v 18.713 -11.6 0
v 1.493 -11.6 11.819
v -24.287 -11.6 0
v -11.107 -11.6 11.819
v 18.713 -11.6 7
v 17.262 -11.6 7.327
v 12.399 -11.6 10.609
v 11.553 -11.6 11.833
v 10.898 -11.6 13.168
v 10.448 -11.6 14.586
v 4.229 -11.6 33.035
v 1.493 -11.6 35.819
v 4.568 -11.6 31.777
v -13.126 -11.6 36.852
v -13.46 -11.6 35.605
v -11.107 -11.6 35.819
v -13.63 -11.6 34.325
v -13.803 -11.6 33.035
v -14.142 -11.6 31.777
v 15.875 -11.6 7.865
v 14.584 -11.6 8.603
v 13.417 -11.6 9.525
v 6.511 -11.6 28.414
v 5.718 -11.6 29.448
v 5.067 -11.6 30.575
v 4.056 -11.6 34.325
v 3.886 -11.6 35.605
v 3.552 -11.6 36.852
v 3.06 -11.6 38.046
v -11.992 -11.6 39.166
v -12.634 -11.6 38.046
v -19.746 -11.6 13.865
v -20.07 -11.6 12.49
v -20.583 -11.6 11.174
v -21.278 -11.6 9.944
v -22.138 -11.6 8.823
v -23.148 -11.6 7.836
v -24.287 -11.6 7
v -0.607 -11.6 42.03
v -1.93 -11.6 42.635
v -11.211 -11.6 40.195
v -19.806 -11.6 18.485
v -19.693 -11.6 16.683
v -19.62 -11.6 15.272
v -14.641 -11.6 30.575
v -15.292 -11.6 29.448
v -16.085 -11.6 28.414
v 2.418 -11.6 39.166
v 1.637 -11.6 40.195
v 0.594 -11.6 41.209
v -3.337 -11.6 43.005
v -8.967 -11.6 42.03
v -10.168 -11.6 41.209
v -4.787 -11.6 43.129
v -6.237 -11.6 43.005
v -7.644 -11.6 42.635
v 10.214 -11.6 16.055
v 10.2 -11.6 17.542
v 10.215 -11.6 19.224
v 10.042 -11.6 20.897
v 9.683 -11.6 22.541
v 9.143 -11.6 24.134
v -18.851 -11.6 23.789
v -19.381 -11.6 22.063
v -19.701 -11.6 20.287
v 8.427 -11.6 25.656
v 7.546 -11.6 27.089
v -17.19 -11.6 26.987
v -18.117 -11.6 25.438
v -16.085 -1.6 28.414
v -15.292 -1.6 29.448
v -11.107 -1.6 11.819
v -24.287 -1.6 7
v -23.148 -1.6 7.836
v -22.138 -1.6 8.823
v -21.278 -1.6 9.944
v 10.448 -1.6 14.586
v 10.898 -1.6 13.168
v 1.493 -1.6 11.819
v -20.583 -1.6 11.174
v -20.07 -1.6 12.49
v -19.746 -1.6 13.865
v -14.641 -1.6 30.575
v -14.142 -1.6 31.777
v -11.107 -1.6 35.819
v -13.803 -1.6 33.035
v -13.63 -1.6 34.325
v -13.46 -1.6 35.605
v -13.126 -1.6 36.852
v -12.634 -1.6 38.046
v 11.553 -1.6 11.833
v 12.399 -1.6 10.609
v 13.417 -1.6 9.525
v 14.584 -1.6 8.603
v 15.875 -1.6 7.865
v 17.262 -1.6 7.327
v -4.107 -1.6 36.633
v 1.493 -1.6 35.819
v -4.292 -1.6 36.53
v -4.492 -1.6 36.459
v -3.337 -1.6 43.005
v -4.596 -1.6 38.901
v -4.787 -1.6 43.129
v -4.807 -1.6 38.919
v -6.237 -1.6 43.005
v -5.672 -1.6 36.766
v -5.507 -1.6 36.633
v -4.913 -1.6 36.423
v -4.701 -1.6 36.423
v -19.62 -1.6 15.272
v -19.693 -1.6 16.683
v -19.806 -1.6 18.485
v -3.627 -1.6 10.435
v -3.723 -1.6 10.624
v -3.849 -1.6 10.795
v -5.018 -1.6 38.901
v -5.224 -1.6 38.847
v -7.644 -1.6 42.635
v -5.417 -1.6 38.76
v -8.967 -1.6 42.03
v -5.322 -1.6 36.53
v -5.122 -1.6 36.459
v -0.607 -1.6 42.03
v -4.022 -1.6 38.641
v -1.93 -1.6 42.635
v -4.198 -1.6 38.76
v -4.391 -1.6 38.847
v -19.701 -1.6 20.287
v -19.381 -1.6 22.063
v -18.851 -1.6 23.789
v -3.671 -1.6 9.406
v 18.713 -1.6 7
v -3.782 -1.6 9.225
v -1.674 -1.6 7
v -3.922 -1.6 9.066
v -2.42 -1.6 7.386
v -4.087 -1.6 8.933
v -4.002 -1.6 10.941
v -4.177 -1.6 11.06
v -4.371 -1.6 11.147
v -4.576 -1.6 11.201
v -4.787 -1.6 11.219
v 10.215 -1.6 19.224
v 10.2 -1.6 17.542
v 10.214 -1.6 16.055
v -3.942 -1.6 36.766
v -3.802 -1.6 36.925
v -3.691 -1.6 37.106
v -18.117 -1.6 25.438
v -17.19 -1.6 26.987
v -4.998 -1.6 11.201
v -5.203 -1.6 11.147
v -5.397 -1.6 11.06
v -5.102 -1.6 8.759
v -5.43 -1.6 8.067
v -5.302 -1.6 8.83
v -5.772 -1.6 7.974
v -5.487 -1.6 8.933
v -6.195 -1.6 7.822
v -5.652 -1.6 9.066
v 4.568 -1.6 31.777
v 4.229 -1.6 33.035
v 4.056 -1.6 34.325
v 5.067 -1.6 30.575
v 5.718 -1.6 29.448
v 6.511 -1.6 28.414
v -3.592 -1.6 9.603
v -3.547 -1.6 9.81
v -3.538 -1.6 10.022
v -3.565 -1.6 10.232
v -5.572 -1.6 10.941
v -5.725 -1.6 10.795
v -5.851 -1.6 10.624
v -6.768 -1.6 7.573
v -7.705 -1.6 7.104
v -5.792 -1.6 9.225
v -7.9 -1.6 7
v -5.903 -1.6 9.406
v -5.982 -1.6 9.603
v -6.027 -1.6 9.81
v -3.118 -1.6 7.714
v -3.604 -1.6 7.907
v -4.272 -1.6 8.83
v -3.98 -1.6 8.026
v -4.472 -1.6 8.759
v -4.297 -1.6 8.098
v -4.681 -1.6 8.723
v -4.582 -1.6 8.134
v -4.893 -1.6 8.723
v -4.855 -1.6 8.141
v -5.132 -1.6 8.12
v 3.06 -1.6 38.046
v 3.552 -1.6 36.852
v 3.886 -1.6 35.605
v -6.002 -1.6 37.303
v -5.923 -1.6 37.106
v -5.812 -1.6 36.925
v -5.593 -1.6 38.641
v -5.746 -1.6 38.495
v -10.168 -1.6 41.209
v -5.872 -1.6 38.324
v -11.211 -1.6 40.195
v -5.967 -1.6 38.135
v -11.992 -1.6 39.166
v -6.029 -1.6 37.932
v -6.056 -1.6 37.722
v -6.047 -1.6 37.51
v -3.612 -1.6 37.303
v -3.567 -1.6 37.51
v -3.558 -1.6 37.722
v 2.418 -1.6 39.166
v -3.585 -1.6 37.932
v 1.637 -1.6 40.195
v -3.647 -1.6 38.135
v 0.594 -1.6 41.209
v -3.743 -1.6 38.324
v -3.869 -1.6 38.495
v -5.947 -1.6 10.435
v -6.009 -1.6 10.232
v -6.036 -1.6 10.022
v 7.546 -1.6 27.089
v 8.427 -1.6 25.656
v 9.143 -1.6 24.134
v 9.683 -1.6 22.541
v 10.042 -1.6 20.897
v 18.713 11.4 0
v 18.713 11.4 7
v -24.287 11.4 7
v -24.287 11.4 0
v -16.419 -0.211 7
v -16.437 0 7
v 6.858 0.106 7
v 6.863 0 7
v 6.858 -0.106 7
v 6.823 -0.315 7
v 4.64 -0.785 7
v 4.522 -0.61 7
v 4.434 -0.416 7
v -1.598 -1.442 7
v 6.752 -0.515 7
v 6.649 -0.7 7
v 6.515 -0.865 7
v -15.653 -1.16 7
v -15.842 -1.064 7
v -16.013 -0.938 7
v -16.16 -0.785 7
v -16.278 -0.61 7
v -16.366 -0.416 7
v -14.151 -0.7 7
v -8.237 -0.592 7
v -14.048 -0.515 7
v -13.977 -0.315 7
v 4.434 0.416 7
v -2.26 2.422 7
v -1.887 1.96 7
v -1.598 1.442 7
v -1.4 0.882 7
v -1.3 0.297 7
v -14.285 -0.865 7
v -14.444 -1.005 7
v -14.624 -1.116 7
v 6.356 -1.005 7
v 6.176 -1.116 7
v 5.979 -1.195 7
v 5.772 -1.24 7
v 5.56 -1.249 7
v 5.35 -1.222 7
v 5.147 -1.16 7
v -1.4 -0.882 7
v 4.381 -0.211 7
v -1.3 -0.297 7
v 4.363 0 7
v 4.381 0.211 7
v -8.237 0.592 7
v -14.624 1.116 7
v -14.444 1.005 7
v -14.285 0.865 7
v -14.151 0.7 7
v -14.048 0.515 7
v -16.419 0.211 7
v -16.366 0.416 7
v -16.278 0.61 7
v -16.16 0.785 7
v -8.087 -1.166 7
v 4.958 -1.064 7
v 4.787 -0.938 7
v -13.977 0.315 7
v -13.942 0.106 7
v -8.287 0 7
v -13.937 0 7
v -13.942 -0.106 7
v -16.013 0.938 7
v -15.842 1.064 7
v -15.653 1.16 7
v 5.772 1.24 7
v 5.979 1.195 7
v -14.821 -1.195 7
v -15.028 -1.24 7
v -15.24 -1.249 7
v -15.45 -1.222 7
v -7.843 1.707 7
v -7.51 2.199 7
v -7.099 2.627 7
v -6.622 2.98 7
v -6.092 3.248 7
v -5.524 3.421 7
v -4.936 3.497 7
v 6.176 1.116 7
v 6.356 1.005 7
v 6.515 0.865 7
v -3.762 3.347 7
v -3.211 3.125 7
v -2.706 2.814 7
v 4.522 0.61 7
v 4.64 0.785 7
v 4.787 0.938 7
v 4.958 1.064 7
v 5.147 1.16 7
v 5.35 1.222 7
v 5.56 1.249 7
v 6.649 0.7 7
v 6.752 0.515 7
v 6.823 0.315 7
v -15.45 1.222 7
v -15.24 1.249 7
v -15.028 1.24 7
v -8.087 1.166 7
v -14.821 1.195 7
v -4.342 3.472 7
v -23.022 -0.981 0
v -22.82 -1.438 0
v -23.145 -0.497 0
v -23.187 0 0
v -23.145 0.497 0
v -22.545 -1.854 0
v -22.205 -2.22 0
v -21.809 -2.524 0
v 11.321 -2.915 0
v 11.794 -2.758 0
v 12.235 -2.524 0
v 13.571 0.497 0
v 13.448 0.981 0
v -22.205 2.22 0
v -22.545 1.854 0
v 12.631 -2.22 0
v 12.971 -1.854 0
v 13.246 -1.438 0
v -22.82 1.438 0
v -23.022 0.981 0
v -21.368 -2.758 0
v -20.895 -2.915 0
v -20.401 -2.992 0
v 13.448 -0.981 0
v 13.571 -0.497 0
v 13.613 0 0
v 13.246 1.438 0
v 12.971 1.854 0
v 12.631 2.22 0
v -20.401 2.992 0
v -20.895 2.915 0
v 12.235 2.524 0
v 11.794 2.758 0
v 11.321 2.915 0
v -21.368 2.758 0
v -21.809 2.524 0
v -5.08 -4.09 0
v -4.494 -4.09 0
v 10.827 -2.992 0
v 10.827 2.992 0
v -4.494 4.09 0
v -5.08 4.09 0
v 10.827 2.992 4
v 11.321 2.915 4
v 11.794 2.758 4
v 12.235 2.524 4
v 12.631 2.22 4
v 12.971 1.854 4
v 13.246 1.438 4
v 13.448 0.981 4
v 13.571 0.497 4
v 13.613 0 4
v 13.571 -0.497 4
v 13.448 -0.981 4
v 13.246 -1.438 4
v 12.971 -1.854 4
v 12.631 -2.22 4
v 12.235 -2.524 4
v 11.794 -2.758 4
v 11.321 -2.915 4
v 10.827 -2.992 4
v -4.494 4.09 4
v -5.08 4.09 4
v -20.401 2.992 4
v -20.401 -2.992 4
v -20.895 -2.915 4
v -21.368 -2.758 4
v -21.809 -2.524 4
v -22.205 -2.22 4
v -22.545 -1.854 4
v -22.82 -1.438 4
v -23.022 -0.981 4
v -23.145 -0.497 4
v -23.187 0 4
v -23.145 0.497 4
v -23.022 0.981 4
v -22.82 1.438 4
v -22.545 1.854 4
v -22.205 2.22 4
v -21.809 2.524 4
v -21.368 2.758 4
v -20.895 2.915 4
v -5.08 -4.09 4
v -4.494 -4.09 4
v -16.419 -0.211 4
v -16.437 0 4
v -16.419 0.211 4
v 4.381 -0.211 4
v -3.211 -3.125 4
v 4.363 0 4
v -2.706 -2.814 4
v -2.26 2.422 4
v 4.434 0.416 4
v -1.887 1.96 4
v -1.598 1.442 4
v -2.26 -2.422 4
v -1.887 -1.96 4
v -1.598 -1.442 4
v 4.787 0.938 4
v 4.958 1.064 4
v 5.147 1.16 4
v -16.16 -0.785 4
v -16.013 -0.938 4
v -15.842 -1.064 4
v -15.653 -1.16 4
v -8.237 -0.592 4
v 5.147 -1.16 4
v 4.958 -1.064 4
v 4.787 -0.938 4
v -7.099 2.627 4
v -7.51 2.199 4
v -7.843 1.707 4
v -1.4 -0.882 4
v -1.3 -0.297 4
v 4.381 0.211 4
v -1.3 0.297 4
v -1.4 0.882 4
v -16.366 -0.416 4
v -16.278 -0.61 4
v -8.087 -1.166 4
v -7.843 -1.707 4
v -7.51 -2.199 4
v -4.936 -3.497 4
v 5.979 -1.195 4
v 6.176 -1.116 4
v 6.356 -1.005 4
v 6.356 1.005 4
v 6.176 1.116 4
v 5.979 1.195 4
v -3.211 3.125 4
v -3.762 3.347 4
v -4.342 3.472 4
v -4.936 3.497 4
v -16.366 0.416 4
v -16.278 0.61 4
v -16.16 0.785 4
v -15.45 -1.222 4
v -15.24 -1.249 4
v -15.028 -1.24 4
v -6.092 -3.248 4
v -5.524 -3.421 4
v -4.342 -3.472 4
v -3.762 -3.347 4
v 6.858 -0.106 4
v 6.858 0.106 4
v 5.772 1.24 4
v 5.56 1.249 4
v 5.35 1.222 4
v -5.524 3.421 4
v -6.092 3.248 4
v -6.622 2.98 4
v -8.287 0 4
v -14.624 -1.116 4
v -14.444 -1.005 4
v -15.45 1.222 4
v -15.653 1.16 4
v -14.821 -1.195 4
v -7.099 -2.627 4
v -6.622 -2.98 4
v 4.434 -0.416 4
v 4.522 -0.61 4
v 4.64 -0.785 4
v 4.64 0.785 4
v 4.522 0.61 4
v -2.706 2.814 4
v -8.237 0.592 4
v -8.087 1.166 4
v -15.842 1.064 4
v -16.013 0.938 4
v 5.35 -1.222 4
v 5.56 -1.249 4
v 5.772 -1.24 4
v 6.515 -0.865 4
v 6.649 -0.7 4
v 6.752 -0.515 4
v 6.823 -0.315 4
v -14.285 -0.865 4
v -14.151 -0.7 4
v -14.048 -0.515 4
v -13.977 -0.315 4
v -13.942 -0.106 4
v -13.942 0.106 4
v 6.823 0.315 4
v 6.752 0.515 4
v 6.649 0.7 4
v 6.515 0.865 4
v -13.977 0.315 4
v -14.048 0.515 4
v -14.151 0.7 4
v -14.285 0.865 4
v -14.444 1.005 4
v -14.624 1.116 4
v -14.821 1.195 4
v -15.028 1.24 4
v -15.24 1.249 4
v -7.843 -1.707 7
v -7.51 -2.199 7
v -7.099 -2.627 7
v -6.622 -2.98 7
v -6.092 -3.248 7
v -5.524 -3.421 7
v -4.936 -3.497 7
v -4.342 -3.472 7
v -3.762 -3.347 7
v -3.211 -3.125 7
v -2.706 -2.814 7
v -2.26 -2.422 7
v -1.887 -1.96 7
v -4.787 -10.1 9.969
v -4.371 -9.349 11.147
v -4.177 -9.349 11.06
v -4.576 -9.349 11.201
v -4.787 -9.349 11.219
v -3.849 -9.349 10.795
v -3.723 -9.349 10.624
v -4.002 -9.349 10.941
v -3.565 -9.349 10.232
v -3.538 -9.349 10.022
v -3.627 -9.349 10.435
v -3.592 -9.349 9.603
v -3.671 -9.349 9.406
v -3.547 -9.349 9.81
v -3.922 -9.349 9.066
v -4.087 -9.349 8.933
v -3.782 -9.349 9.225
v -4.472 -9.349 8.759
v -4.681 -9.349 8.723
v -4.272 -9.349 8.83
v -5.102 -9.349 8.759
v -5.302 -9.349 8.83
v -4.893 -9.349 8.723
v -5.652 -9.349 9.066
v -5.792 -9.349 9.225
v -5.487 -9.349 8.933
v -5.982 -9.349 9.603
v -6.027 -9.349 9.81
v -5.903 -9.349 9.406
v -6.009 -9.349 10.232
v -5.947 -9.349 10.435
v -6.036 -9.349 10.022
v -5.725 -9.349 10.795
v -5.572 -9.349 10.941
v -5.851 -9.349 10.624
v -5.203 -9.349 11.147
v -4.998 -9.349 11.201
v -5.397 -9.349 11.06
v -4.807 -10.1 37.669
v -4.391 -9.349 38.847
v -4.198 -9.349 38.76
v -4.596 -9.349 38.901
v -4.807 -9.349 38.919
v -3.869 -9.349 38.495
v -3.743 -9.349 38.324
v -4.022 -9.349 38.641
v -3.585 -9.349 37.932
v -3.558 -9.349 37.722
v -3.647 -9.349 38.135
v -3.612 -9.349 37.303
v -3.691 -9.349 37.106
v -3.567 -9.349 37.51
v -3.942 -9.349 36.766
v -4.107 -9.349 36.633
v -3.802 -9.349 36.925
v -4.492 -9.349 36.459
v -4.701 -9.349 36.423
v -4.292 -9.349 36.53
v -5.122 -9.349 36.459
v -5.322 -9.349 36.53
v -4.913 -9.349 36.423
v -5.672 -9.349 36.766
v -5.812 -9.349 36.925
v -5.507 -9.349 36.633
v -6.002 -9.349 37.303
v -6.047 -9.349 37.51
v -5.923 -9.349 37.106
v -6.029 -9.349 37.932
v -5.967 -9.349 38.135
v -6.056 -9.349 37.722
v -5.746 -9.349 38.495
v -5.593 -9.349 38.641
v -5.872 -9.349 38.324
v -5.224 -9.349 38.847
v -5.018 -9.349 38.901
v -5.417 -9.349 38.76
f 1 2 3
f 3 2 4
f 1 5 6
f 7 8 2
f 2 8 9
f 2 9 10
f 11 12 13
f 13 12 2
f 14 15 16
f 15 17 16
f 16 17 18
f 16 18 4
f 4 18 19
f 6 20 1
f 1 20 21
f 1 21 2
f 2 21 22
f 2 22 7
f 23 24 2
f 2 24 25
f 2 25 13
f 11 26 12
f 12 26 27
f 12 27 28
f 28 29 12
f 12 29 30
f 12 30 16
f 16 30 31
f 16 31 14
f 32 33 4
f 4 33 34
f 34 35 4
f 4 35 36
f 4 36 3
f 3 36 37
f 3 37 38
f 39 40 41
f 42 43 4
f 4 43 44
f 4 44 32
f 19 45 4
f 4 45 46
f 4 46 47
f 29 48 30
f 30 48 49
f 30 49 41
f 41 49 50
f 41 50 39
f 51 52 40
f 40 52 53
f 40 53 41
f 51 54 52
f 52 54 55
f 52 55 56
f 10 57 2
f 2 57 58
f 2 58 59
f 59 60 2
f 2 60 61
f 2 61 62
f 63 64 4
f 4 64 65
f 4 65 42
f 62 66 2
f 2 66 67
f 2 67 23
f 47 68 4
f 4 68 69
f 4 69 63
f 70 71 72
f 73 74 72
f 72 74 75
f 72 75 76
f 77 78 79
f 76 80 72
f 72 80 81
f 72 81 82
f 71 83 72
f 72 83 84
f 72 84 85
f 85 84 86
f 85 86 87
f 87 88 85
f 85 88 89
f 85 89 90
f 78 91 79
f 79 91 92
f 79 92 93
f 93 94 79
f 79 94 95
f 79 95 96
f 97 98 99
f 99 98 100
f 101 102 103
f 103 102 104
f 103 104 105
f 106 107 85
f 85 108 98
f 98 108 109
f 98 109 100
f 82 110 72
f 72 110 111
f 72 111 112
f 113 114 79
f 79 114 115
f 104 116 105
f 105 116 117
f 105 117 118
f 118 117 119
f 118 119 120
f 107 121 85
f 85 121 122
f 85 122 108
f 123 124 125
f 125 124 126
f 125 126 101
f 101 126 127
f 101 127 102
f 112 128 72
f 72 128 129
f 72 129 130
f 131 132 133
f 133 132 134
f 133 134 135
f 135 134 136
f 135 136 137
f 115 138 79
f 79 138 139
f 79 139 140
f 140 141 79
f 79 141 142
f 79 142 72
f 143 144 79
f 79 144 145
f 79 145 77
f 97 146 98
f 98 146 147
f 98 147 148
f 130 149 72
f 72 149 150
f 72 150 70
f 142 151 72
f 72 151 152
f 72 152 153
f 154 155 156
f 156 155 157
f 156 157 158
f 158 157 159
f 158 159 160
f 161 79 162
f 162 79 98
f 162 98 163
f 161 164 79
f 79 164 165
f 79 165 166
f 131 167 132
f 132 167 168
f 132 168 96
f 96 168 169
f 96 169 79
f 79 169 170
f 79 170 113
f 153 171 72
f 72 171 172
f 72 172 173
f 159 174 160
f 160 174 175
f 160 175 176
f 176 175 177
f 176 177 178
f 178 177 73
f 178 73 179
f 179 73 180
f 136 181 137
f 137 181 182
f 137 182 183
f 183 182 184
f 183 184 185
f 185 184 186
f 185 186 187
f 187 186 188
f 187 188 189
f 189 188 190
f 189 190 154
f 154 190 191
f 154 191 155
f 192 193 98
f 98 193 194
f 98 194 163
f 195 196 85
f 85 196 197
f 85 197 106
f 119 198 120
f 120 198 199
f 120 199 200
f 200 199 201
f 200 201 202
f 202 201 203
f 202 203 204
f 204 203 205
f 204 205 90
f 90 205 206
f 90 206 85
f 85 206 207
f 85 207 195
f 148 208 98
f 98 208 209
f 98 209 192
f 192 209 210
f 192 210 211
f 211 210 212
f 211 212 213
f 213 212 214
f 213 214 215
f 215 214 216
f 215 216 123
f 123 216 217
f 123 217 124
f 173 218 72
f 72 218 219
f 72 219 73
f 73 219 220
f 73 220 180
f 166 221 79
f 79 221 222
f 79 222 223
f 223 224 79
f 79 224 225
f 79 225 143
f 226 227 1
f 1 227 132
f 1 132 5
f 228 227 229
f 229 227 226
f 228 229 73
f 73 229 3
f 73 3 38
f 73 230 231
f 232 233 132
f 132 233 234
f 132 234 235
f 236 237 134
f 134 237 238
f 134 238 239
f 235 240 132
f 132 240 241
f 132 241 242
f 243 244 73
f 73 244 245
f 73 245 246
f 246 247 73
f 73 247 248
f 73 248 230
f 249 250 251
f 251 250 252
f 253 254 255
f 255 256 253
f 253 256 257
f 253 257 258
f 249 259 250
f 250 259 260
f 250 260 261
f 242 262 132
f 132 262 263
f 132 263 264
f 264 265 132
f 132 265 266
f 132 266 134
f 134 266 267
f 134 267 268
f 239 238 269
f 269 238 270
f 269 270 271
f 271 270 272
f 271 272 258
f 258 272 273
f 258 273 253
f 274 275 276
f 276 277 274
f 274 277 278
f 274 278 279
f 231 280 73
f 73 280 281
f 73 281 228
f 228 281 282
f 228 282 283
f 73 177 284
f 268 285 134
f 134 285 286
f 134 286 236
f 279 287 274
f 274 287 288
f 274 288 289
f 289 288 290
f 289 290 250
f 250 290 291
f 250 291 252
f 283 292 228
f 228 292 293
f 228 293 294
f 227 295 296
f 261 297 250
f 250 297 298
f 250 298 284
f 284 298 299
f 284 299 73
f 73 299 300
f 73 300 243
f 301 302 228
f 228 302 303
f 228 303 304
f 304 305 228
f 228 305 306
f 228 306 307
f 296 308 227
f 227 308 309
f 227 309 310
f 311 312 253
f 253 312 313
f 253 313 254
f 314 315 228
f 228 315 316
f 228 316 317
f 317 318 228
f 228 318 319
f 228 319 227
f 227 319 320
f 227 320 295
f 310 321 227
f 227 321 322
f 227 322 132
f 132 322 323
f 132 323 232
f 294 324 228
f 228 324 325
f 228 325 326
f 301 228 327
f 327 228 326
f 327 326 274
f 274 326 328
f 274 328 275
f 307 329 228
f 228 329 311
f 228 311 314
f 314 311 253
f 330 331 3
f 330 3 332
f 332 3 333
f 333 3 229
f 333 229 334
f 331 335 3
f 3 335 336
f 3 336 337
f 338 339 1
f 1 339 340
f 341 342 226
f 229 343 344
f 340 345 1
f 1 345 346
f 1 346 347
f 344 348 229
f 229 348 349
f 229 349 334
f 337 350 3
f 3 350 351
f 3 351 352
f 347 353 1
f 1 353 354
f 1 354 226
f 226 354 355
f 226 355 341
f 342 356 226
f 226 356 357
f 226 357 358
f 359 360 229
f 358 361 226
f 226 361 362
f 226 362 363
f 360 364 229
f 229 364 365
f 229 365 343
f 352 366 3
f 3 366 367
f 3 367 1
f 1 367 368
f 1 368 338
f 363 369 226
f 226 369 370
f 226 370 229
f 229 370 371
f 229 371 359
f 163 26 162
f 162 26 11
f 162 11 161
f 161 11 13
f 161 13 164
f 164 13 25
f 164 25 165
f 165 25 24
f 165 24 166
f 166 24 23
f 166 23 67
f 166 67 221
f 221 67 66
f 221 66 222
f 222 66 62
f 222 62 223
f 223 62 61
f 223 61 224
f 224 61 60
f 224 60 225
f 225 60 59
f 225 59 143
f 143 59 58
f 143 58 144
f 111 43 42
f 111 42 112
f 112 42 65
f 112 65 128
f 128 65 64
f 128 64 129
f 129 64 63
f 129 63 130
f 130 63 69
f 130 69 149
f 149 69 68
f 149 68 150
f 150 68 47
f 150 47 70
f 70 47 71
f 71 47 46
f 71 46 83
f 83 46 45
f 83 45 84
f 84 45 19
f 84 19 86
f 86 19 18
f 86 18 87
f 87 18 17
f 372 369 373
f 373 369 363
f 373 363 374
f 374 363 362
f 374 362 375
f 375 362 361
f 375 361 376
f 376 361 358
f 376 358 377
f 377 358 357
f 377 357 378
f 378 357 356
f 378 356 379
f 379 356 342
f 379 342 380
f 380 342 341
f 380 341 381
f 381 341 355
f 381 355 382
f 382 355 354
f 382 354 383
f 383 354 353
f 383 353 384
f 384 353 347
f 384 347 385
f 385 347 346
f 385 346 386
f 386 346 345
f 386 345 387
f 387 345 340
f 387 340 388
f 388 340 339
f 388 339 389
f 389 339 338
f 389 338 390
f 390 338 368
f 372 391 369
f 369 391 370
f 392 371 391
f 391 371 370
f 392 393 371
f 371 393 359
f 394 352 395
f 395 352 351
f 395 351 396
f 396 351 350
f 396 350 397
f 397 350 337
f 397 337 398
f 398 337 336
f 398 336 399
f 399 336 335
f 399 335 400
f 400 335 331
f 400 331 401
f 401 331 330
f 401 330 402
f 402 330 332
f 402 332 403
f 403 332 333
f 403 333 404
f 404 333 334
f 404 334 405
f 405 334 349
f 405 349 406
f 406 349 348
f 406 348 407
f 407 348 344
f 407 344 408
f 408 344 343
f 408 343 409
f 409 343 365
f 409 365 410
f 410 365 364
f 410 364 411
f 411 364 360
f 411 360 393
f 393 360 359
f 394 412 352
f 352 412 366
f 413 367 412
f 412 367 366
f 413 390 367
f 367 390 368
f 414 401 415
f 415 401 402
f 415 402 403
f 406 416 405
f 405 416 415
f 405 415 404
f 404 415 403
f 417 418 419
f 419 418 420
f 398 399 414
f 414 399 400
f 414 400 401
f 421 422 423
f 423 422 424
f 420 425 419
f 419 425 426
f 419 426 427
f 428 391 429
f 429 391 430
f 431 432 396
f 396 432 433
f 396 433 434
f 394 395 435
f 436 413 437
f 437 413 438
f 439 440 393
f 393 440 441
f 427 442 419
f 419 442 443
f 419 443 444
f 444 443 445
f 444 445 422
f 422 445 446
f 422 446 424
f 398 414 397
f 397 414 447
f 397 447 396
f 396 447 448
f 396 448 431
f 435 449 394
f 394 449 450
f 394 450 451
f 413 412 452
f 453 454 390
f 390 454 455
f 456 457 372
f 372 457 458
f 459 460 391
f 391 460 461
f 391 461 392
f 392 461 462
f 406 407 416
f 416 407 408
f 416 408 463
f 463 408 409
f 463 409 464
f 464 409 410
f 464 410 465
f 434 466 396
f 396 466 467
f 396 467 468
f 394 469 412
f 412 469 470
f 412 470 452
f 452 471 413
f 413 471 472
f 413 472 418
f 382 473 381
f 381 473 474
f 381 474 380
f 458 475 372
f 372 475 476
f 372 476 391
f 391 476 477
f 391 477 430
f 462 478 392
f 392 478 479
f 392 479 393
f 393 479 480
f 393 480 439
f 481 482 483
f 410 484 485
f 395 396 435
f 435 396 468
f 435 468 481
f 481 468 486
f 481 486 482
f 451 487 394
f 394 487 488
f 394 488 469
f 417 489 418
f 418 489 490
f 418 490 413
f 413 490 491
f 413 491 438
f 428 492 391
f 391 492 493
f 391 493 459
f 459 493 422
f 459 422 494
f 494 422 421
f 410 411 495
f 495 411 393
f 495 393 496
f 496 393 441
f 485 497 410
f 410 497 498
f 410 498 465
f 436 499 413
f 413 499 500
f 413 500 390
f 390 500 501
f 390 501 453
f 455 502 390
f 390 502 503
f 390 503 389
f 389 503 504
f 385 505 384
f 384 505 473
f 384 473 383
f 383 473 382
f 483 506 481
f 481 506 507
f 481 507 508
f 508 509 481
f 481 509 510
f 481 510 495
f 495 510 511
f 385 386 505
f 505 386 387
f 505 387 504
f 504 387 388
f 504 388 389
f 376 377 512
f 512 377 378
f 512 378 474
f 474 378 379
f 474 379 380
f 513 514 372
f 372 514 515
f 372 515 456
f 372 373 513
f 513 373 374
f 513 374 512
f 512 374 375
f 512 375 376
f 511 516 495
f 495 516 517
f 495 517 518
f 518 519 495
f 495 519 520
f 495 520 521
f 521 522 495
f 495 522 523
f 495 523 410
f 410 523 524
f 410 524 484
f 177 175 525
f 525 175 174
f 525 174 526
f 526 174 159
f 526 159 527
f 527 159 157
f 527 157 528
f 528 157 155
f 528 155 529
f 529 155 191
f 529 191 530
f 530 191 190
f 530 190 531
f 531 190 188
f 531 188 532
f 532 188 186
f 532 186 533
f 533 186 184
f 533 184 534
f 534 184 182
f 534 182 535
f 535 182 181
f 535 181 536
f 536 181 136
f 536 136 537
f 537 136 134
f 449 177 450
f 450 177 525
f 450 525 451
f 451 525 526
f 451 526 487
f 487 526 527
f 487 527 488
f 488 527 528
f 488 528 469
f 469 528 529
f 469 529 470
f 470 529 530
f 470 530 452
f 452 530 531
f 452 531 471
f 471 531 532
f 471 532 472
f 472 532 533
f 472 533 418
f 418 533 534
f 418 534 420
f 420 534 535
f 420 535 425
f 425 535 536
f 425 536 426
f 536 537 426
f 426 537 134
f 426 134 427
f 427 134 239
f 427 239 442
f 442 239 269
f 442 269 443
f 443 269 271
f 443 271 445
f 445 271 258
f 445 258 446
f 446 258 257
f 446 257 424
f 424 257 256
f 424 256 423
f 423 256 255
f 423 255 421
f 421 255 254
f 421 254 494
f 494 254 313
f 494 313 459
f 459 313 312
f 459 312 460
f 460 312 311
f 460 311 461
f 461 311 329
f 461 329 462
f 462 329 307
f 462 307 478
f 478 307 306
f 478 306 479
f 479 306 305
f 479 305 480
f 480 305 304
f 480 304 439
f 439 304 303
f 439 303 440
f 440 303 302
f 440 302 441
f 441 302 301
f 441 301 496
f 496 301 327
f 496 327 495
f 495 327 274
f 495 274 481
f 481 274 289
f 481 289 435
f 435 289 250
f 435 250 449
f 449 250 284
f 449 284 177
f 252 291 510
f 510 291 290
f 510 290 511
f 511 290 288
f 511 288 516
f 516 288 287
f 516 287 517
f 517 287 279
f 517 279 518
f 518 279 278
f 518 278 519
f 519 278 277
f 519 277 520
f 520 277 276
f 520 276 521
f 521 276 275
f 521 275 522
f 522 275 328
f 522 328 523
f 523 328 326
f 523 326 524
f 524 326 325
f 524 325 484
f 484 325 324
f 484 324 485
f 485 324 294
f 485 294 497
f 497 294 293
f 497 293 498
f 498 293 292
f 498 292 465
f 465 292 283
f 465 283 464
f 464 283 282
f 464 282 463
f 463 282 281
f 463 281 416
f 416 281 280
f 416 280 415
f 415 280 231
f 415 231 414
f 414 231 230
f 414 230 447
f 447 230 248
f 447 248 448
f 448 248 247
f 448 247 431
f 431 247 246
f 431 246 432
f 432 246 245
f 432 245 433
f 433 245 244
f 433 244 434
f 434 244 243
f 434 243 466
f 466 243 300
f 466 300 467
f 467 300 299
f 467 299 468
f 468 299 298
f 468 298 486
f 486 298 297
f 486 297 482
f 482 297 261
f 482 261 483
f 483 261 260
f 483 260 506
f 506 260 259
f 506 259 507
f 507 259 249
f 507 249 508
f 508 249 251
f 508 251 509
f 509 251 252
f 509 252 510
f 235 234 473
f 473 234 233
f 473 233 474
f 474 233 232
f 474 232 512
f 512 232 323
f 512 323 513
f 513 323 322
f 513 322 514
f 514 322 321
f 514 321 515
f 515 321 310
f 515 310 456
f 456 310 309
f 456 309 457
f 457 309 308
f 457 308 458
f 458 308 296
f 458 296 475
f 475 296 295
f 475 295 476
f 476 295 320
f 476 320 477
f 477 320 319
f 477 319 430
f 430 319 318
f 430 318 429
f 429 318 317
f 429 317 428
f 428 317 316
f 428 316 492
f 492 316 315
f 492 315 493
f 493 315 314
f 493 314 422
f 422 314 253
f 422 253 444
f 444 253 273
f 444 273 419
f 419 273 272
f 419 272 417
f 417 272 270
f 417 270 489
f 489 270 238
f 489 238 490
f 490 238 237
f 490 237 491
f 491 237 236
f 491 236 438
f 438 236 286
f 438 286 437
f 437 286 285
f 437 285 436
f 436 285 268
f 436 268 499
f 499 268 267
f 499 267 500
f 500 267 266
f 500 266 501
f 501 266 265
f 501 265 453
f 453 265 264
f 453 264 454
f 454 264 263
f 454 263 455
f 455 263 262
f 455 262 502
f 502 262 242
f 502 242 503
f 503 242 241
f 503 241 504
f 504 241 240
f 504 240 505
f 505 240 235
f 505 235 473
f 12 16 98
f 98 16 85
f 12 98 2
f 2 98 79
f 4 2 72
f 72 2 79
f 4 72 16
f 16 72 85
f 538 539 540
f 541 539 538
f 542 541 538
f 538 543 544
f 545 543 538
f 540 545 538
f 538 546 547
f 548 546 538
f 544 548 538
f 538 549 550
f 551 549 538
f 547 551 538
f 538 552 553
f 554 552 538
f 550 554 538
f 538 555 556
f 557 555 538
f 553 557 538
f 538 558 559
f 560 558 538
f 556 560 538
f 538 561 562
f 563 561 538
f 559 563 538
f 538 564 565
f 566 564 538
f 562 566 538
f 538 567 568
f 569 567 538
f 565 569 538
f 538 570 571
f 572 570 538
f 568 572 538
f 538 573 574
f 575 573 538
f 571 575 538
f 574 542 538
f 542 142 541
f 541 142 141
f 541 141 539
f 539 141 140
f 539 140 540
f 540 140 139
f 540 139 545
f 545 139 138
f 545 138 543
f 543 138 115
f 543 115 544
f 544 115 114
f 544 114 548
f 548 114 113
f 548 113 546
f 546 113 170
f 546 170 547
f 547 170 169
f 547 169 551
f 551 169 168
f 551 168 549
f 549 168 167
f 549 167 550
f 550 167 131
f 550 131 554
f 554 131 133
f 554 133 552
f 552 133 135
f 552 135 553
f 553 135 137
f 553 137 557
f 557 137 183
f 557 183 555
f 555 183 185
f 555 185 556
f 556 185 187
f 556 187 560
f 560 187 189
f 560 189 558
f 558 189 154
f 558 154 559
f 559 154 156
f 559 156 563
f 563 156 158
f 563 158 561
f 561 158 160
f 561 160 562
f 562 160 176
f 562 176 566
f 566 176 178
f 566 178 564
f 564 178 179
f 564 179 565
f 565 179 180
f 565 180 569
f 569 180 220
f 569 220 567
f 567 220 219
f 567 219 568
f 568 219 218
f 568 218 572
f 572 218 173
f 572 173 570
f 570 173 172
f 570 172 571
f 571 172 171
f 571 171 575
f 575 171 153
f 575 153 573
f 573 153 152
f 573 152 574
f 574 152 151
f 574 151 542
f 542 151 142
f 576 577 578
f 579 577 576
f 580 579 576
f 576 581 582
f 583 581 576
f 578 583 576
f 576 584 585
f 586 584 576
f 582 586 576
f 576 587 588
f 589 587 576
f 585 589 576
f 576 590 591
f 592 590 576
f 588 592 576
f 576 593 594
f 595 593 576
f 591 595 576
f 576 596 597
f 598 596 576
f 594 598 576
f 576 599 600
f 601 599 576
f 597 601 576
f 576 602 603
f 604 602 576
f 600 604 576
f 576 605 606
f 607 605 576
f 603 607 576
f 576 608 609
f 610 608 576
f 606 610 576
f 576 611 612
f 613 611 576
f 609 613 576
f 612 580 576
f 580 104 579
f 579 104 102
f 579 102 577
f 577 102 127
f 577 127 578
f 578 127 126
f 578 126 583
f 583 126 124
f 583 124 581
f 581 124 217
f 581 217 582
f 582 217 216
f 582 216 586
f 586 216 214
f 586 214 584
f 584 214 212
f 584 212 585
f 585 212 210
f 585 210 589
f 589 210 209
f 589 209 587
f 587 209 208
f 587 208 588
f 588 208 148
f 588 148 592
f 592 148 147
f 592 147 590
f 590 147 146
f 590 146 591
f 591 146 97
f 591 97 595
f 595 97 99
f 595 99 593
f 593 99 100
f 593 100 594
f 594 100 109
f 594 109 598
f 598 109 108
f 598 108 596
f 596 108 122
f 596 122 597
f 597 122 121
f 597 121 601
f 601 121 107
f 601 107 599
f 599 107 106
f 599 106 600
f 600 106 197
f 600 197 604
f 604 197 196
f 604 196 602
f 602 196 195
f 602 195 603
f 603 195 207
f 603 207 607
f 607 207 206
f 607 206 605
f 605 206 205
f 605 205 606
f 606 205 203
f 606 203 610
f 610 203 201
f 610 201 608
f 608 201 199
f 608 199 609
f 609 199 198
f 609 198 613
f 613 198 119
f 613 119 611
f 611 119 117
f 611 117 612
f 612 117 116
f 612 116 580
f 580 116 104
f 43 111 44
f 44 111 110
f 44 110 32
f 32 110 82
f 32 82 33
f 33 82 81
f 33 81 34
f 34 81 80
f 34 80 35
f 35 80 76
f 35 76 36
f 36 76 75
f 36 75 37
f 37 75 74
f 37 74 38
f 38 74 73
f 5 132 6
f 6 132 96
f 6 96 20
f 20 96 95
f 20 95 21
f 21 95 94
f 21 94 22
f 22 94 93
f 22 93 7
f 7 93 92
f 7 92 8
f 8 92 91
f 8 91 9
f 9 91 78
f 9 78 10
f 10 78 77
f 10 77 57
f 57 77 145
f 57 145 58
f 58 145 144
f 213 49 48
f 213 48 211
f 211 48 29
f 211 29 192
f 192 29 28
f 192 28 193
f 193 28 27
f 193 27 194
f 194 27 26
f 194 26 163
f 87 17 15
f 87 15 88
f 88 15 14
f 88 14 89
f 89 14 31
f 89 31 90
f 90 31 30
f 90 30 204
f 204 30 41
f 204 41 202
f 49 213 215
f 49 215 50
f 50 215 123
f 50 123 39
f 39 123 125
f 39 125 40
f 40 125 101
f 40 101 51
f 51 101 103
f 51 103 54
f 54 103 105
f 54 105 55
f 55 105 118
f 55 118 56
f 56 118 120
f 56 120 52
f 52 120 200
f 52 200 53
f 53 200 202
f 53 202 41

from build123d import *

# Parameters (mm, degrees)
SKETCH1_W                 = 43
SKETCH1_H                 = 23
BOSS_EXTRUDE1_DEPTH       = 7
BOSS_EXTRUDE2_DEPTH       = 10
CUT_EXTRUDE1_DEPTH        = 4
M8X1_0_TAPPED_HOLE1_D     = 7
M8X1_0_TAPPED_HOLE1_DEPTH = 3
M8X1_0_TAPPED_HOLE1_TIP   = 2.103012167
M3X0_5_TAPPED_HOLE1_D     = 2.5
SKETCH10_W                = 24
SKETCH10_H                = 12.6
CUT_EXTRUDE2_DEPTH        = 65.606711792
M3X0_5_TAPPED_HOLE2_D     = 2.5
M3X0_5_TAPPED_HOLE2_DEPTH = 7.748924226
M3X0_5_TAPPED_HOLE2_TIP   = 0.751075774
FILLET2_R                 = 10
FILLET3_R                 = 10
FILLET4_R                 = 8.5


with BuildPart() as part:
    # Sketch1 → Boss-Extrude1 (new body)
    with BuildSketch(Plane.XY):
        with Locations((-2.787, -0.099880638)):
            Rectangle(SKETCH1_W, SKETCH1_H)
    extrude(amount=BOSS_EXTRUDE1_DEPTH)

    # Sketch9 → Boss-Extrude2 (add)
    with BuildSketch(Plane(origin=(-10, -11.599880638, 0), x_dir=(0, 0, 1), z_dir=(0, 1, 0))):
        with BuildLine():
            Line((43.646910996, 14.033226444), (35.00321795, 14.033226444))
            ThreePointArc((35.00321795, 14.033226444), (31.483591553, 14.673085952), (28.414378439, 16.510780439))
            ThreePointArc((28.414378439, 16.510780439), (3.5, 5.213), (28.414378439, -6.084780439))
            ThreePointArc((28.414378439, -6.084780439), (31.483591553, -4.247085952), (35.00321795, -3.607226444))
            Line((35.00321795, -3.607226444), (43.646910996, -3.607226444))
            Line((43.646910996, -3.607226444), (43.646910996, 14.033226444))
        make_face()
    extrude(amount=BOSS_EXTRUDE2_DEPTH)

    # Sketch2 → Cut-Extrude1 (cut)
    with BuildSketch(Plane(origin=(0, 0, 0), x_dir=(-1, 0, 0), z_dir=(0, 0, -1))):
        with BuildLine():
            Line((1.32735088, -3.862748758), (4.494142857, -4.089527441))
            ThreePointArc((4.494142857, -4.089527441), (4.787, -4.1), (5.079857143, -4.089527441))
            Line((5.079857143, -4.089527441), (8.24664912, -3.862748758))
            Line((8.24664912, -3.862748758), (20.401285714, -2.992337152))
            ThreePointArc((20.401285714, -2.992337152), (23.187, 0), (20.401285714, 2.992337152))
            Line((20.401285714, 2.992337152), (8.24664912, 3.862748758))
            Line((8.24664912, 3.862748758), (5.079857143, 4.089527441))
            ThreePointArc((5.079857143, 4.089527441), (4.787, 4.1), (4.494142857, 4.089527441))
            Line((4.494142857, 4.089527441), (1.32735088, 3.862748758))
            Line((1.32735088, 3.862748758), (-10.827285714, 2.992337152))
            ThreePointArc((-10.827285714, 2.992337152), (-13.613, 0), (-10.827285714, -2.992337152))
            Line((-10.827285714, -2.992337152), (1.32735088, -3.862748758))
        make_face()
    extrude(amount=-CUT_EXTRUDE1_DEPTH, mode=Mode.SUBTRACT)

    # M8x1.0 Tapped Hole1
    with Locations(Plane(origin=(0, 0, 4), x_dir=(-1, 0, 0), z_dir=(0, 0, -1))):
        with Locations((4.787, 0)):
            Hole(M8X1_0_TAPPED_HOLE1_D / 2, depth=M8X1_0_TAPPED_HOLE1_DEPTH)
            with Locations((0, 0, -(M8X1_0_TAPPED_HOLE1_DEPTH + M8X1_0_TAPPED_HOLE1_TIP / 2))):  # 118° drill point
                Cone(0, M8X1_0_TAPPED_HOLE1_D / 2, M8X1_0_TAPPED_HOLE1_TIP, mode=Mode.SUBTRACT)

    # M3x0.5 Tapped Hole1 (through all)
    with Locations(Plane(origin=(0, 0, 4), x_dir=(-1, 0, 0), z_dir=(0, 0, -1))):
        with Locations((15.187, 0), (-5.613, 0), (4.787, 0)):
            Hole(M3X0_5_TAPPED_HOLE1_D / 2)

    # Sketch10 → Cut-Extrude2 (cut, through all)
    with BuildSketch(Plane(origin=(-23, -11.599880638, 0), x_dir=(0, 0, -1), z_dir=(0, 1, 0))):
        with Locations((-23.818759101, -18.192773556)):
            Rectangle(SKETCH10_W, SKETCH10_H)
    extrude(amount=CUT_EXTRUDE2_DEPTH, mode=Mode.SUBTRACT)

    # M3x0.5 Tapped Hole2
    with Locations(Plane(origin=(-13, -1.599880638, 0), x_dir=(0, 0, -1), z_dir=(0, 1, 0))):
        with Locations((-37.668759101, -8.192773556), (-9.968759101, -8.213)):
            Hole(M3X0_5_TAPPED_HOLE2_D / 2, depth=M3X0_5_TAPPED_HOLE2_DEPTH)
            with Locations((0, 0, -(M3X0_5_TAPPED_HOLE2_DEPTH + M3X0_5_TAPPED_HOLE2_TIP / 2))):  # 118° drill point
                Cone(0, M3X0_5_TAPPED_HOLE2_D / 2, M3X0_5_TAPPED_HOLE2_TIP, mode=Mode.SUBTRACT)

    # Fillet2
    # the kernel refuses this fillet: 10 mm, written as the material it adds along each edge
    with BuildSketch(Plane(origin=(4.850495199, -1.599880638, 7), x_dir=(1, 0, 0), z_dir=(0, -1, 0))) as fillet2_piece_1:
        with BuildLine():
            CenterArc((15.328319752, 9.891985975), FILLET2_R, 176.271875941, 85.299253253)
            Line((5.349481533, 10.542207323), (5.149904768, 10.55521175))
            ThreePointArc((5.149904768, 10.55521175), (3.577273835, 4.813127088), (-0.128339434, 0.153391622))
            Line((-0.128339434, 0.153391622), (0, -0.2))
            ThreePointArc((0, -0.2), (6.931252401, -0.2), (13.833188502, -0.19783972))
            Line((13.833188502, -0.19783972), (13.862504801, 0))
        make_face()
    extrude(amount=10)
    with BuildSketch(Plane(origin=(-14.424495199, -1.599880638, 7), x_dir=(-1, 0, 0), z_dir=(0, -1, 0))) as fillet2_piece_2:
        with BuildLine():
            CenterArc((15.193634372, -8.460440739), FILLET2_R, 122.216027092, 64.805428204)
            Line((5.26862991, -9.682850831), (5.070129821, -9.707299033))
            ThreePointArc((5.070129821, -9.707299033), (3.379125123, -4.436159529), (-0.128339434, -0.153391622))
            Line((-0.128339434, -0.153391622), (0, 0.2))
            ThreePointArc((0, 0.2), (4.931252401, 0.2), (9.75588221, 0.169208815))
            Line((9.75588221, 0.169208815), (9.862504801, 0))
        make_face()
    extrude(amount=10)

    # Fillet3
    # the kernel refuses this fillet: 10 mm, written as the material it takes off along each edge
    with BuildSketch(Plane(origin=(-13.607226444, -36.484775111, 43.646910996), x_dir=(1, 0, 0), z_dir=(0, 1, 0))) as fillet3_piece_1:
        with BuildLine():
            CenterArc((9.953957789, 10), FILLET3_R, 183.8885176, 86.1114824)
            Line((-0.023021105, 9.321846523), (-1.020718995, 9.254031175))
            ThreePointArc((-1.020718995, 9.254031175), (-1, 8.643693046), (-1, 0))
            Line((-1, 0), (0, -1))
            Line((0, -1), (9.953957789, -1))
            Line((9.953957789, -1), (9.953957789, 0))
        make_face()
    extrude(amount=59.769788945, mode=Mode.SUBTRACT)
    with BuildSketch(Plane(origin=(4.033226444, -36.484775111, 43.646910996), x_dir=(0.0024695788781197194, 0, -0.9999969505854329), z_dir=(0, 1, 0))) as fillet3_piece_2:
        with BuildLine():
            CenterArc((9.975387422, 9.978623224), FILLET3_R, 180.141496591, 86.1114824)
            Line((-0.024582084, 9.953927435), (-1.024579034, 9.951457856))
            Line((-1.024579034, 9.951457856), (-0.999996951, -0.002469579))
            Line((-0.999996951, -0.002469579), (0.002469579, -0.999996951))
            ThreePointArc((0.002469579, -0.999996951), (8.646136267, -0.978650669), (9.256523702, -0.997862322))
            Line((9.256523702, -0.997862322), (9.321874949, 0))
        make_face()
    extrude(amount=59.769788945, mode=Mode.SUBTRACT)

    # Fillet4
    fillet4_edges = [part.edges().sort_by_distance(p)[0] for p in [
        (-4.787, -6.599880638, 43.582435806),
    ]]
    fillet(fillet4_edges, radius=FILLET4_R)


solid = part.part
